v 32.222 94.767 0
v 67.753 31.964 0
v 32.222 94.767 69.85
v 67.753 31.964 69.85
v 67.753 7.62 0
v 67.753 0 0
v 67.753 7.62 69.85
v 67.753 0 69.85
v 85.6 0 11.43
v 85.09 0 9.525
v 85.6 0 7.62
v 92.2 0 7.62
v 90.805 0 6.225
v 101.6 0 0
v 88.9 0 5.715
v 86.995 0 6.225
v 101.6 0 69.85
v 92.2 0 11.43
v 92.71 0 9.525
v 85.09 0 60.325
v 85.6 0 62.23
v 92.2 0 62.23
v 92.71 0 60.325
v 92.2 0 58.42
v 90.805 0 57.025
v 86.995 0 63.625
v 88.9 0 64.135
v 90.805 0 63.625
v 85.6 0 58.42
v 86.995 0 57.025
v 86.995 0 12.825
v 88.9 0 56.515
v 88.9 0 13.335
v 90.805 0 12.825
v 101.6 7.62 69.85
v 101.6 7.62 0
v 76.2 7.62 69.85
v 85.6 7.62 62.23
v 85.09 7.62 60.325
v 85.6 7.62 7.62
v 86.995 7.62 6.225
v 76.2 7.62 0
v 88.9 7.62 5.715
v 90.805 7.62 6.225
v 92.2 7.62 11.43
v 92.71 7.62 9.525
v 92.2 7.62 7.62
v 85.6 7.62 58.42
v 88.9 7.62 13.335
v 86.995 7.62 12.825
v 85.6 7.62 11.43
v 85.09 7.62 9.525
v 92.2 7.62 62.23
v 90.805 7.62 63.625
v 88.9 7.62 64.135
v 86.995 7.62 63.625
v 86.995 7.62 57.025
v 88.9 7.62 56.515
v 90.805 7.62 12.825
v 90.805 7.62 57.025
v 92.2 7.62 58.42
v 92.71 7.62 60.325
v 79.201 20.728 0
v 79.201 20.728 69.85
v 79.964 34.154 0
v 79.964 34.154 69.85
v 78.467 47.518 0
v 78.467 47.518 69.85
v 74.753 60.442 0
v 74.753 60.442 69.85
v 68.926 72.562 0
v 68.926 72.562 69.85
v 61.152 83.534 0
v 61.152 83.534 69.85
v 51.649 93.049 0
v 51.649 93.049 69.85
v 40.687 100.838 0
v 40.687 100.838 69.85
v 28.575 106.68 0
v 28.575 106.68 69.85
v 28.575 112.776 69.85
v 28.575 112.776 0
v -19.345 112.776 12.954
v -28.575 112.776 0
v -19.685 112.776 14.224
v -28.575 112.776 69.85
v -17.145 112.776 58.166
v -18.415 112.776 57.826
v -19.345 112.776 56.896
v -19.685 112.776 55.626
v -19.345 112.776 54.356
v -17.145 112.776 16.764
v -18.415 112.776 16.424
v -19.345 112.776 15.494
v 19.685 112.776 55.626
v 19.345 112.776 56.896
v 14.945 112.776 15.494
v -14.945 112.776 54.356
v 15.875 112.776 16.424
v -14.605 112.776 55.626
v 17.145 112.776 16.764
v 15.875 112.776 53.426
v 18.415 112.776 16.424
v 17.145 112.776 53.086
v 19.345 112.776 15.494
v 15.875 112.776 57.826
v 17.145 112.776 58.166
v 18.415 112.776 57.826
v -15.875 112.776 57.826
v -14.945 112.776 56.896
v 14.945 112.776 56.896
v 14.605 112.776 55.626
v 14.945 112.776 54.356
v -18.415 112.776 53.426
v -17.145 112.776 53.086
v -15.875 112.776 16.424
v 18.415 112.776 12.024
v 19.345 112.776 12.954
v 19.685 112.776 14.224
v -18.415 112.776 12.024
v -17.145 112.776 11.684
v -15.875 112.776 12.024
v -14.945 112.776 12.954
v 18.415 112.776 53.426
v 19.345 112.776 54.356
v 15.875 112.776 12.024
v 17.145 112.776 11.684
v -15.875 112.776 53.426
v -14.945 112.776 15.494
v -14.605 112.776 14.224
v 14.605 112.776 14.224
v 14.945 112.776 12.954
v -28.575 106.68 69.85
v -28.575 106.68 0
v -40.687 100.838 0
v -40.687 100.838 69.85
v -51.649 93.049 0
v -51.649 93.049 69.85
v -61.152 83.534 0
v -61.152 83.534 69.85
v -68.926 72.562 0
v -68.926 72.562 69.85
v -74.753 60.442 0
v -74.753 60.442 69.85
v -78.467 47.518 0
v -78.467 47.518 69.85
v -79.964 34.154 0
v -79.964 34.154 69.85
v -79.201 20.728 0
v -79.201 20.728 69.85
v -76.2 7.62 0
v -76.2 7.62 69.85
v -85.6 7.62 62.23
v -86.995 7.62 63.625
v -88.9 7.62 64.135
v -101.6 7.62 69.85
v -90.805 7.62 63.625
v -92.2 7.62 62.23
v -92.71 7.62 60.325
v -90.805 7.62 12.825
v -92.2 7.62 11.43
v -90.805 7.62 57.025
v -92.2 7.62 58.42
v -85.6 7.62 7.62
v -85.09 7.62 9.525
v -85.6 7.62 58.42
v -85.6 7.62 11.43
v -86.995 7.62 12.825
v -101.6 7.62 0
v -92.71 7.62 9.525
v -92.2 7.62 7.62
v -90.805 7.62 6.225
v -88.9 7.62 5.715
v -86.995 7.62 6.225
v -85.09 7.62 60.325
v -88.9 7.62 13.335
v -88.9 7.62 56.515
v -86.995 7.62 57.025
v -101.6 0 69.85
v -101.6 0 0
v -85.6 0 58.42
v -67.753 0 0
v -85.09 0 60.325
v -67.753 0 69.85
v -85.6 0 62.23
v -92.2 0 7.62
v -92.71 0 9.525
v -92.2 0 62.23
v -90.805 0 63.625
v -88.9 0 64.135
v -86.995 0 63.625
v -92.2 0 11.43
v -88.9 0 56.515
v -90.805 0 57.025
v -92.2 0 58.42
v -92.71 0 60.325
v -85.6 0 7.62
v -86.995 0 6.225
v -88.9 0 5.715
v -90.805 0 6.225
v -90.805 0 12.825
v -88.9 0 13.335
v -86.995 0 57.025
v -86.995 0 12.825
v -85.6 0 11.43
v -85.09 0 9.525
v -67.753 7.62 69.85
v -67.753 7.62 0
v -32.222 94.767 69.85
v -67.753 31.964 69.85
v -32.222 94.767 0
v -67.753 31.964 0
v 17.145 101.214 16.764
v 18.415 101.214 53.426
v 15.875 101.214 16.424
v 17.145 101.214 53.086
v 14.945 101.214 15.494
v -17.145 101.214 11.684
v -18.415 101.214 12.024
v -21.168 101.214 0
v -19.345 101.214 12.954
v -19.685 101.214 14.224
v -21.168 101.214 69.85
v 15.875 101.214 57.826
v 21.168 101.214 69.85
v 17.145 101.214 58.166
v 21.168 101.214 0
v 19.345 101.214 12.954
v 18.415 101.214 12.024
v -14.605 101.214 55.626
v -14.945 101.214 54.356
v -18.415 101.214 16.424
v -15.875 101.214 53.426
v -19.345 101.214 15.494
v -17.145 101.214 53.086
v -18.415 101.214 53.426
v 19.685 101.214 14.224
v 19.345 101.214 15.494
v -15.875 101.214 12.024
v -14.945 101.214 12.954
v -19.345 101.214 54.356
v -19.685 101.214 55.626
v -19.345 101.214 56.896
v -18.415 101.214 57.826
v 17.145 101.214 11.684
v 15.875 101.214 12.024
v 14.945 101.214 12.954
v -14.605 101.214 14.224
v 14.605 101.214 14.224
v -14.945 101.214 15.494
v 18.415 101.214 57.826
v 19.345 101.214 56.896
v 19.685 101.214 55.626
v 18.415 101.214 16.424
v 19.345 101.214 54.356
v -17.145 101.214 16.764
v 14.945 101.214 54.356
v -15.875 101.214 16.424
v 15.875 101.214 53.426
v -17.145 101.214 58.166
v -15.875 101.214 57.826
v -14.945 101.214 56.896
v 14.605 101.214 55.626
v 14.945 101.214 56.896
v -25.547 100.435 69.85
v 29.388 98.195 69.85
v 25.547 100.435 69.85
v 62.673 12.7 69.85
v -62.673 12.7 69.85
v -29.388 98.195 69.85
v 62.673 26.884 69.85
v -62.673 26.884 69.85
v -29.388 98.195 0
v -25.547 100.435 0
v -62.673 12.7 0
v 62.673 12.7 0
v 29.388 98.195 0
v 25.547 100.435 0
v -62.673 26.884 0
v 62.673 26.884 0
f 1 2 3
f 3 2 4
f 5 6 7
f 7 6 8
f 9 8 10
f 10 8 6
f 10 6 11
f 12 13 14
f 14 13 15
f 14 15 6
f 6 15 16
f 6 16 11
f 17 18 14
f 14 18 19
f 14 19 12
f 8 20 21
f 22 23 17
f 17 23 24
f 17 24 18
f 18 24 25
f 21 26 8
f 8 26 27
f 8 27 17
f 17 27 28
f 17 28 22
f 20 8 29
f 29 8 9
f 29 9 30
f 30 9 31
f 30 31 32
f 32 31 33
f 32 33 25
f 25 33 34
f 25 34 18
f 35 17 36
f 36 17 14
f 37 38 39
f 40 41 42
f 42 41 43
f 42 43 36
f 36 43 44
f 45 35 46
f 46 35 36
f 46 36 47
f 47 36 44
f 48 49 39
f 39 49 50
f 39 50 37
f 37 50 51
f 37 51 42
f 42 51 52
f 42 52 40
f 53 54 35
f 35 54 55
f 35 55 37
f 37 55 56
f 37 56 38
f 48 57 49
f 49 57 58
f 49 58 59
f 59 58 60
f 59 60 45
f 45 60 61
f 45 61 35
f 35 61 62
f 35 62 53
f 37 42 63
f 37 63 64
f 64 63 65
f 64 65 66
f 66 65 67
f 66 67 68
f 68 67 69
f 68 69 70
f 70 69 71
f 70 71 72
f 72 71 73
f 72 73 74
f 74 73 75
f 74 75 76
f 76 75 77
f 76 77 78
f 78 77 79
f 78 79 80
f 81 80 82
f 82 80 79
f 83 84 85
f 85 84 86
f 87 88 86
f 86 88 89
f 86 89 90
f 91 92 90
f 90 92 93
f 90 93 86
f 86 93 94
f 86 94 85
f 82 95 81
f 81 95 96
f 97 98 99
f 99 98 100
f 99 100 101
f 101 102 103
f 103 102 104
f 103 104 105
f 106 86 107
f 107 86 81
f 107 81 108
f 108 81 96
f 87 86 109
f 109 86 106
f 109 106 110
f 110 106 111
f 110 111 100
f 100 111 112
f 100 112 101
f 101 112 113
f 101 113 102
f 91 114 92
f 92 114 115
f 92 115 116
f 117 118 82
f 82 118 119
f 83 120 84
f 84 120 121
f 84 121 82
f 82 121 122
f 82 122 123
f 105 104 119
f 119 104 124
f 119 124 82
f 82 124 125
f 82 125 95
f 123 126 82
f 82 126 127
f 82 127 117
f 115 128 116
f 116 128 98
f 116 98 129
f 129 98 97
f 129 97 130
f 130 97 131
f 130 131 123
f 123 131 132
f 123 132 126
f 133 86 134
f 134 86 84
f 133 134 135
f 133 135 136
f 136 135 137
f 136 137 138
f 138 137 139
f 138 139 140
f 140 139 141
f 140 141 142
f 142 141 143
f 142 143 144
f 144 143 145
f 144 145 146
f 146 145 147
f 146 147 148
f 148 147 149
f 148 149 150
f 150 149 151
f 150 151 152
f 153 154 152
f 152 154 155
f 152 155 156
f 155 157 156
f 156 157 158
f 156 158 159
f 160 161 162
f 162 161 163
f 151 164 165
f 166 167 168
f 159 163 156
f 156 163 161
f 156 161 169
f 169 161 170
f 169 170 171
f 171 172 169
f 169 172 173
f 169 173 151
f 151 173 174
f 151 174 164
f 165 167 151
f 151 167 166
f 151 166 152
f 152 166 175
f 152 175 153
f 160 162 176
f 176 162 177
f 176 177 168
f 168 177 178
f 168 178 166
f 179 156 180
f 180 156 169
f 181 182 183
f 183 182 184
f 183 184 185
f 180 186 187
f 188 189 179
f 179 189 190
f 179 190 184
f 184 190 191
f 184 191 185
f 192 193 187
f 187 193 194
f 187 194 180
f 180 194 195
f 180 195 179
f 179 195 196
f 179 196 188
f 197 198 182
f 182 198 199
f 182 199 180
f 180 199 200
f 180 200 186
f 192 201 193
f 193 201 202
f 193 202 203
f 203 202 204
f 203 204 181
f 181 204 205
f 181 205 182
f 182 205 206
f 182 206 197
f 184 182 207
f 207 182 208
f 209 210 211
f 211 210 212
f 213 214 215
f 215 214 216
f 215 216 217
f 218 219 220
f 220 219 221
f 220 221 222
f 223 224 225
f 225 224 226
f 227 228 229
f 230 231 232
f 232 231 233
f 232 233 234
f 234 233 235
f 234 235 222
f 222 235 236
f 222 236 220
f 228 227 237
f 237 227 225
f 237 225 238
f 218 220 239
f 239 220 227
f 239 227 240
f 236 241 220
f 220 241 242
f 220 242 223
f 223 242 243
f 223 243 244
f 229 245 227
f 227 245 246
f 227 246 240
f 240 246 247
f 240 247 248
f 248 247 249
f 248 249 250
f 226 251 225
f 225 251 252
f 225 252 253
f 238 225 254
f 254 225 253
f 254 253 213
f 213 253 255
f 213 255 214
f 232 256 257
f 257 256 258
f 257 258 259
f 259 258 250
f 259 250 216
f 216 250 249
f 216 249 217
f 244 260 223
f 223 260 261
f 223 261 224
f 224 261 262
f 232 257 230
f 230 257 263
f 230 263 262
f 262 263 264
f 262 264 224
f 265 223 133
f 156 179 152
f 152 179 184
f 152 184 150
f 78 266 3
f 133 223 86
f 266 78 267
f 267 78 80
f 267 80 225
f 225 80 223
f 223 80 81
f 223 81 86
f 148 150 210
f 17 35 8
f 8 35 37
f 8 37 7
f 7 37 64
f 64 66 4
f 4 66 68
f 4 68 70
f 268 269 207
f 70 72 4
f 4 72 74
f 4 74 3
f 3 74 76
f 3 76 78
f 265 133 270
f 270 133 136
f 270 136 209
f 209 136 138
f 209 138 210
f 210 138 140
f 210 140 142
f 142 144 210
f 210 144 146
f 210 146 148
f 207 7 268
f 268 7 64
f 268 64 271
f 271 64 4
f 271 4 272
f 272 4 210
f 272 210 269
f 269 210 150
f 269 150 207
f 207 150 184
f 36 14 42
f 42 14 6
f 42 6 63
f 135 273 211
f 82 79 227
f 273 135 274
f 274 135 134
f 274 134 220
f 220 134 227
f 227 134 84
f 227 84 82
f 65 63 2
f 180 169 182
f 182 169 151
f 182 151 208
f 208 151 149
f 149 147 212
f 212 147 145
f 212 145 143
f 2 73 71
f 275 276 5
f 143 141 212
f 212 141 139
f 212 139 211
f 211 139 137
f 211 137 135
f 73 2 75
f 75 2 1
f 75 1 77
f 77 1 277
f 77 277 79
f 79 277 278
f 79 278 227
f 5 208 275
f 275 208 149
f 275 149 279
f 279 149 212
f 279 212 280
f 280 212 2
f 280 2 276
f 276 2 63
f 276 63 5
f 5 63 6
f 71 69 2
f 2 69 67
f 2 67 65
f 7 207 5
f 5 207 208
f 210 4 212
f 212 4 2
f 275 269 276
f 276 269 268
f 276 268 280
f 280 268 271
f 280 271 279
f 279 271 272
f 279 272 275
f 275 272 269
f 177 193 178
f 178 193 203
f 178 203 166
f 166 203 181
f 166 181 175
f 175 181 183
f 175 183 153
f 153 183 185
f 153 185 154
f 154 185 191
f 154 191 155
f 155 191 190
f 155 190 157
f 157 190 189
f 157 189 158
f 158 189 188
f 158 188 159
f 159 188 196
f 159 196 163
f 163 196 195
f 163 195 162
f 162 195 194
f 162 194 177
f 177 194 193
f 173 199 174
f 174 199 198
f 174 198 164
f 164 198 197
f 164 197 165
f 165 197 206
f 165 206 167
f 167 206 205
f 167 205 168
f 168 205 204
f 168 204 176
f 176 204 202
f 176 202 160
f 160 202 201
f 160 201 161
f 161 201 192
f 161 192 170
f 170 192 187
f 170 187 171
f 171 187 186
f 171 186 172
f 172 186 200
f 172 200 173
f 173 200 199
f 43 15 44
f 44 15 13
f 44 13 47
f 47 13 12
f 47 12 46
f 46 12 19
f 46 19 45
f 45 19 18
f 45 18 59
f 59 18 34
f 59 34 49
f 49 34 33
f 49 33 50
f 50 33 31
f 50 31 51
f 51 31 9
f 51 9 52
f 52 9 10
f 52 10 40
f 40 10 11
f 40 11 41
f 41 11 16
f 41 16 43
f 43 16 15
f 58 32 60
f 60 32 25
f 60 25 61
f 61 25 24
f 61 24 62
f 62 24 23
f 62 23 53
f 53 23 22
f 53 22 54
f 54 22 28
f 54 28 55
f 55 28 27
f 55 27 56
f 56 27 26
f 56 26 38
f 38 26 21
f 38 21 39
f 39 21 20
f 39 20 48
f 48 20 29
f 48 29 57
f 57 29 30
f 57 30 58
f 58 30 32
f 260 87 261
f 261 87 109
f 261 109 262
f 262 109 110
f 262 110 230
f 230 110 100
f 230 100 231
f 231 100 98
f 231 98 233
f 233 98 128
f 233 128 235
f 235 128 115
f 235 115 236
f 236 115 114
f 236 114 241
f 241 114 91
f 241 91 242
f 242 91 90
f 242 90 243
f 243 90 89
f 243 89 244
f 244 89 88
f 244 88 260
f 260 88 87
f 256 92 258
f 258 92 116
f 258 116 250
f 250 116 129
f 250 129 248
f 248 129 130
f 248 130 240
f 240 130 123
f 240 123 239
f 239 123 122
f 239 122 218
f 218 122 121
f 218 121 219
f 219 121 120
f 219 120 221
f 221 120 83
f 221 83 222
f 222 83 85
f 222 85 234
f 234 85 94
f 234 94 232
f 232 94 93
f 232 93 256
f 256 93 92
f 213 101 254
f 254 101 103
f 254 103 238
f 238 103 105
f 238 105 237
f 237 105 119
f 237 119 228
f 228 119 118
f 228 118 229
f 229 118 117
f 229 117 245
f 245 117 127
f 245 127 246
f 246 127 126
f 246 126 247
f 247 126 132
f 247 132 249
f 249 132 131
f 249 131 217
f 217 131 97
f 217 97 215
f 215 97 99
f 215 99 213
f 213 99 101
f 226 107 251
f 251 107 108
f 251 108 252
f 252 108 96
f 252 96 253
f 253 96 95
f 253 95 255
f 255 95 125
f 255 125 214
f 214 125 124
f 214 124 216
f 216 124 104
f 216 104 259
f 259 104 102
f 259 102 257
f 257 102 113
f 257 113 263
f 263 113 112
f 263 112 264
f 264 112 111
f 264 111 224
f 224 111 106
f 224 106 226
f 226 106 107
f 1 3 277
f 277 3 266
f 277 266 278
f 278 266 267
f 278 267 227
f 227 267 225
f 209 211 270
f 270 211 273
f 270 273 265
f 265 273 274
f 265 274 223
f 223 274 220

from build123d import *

# Parameters (mm, degrees)
BOSS_EXTRUDE1_DEPTH = 69.85
SKETCH2_W           = 135.505629996
SKETCH2_H           = 24.343701923
SKETCH2_W_2         = 125.345629996
SKETCH2_H_2         = 14.183701923
BOSS_EXTRUDE2_DEPTH = 69.85
CUT_EXTRUDE1_REACH  = 169.093
SKETCH3_R           = 3.81
CUT_EXTRUDE2_REACH  = 169.093
FILLET1_R           = 12.7


with BuildPart() as part:
    # Sketch1 → Boss-Extrude1 (new body)
    with BuildSketch(Plane.XY):
        with BuildLine():
            ThreePointArc((-28.575, 101.213911712), (-14.56545796, 105.448187464), (0, 106.877800601))
            Line((0, 106.877800601), (0, 112.776))
            Line((0, 112.776), (-28.575, 112.776))
            Line((-28.575, 112.776), (-28.575, 106.68))
            ThreePointArc((-28.575, 106.68), (-72.094875381, 66.624699703), (-76.2, 7.62))
            Line((-76.2, 7.62), (-101.6, 7.62))
            Line((-101.6, 7.62), (-101.6, 0))
            Line((-101.6, 0), (-67.752814998, 0))
            ThreePointArc((-67.752814998, 0), (-74.914098678, 31.963701923), (-67.752814998, 63.927403846))
            ThreePointArc((-67.752814998, 63.927403846), (-51.64622835, 86.229614594), (-28.575, 101.213911712))
        make_face()
        with BuildLine():
            Line((67.752814998, 0), (101.6, 0))
            Line((101.6, 0), (101.6, 7.62))
            Line((101.6, 7.62), (76.2, 7.62))
            ThreePointArc((76.2, 7.62), (72.094875381, 66.624699703), (28.575, 106.68))
            Line((28.575, 106.68), (28.575, 112.776))
            Line((28.575, 112.776), (0, 112.776))
            Line((0, 112.776), (0, 106.877800601))
            ThreePointArc((0, 106.877800601), (14.56545796, 105.448187464), (28.575, 101.213911712))
            ThreePointArc((28.575, 101.213911712), (51.64622835, 86.229614594), (67.752814998, 63.927403846))
            ThreePointArc((67.752814998, 63.927403846), (74.914098678, 31.963701923), (67.752814998, 0))
        make_face()
        with BuildLine():
            Line((28.575, 101.213911712), (67.752814998, 31.963701923))
            Line((67.752814998, 31.963701923), (67.752814998, 63.927403846))
            ThreePointArc((67.752814998, 63.927403846), (51.64622835, 86.229614594), (28.575, 101.213911712))
        make_face()
        with BuildLine():
            Line((0, 101.213911712), (28.575, 101.213911712))
            ThreePointArc((28.575, 101.213911712), (14.56545796, 105.448187464), (0, 106.877800601))
            Line((0, 106.877800601), (0, 101.213911712))
        make_face()
        with BuildLine():
            Line((-28.575, 101.213911712), (0, 101.213911712))
            Line((0, 101.213911712), (0, 106.877800601))
            ThreePointArc((0, 106.877800601), (-14.56545796, 105.448187464), (-28.575, 101.213911712))
        make_face()
        with BuildLine():
            Line((-67.752814998, 31.963701923), (-28.575, 101.213911712))
            ThreePointArc((-28.575, 101.213911712), (-51.64622835, 86.229614594), (-67.752814998, 63.927403846))
            Line((-67.752814998, 63.927403846), (-67.752814998, 31.963701923))
        make_face()
        with BuildLine():
            Line((-67.752814998, 0), (-67.752814998, 31.963701923))
            Line((-67.752814998, 31.963701923), (-67.752814998, 63.927403846))
            ThreePointArc((-67.752814998, 63.927403846), (-74.914098678, 31.963701923), (-67.752814998, 0))
        make_face()
        with BuildLine():
            Line((67.752814998, 31.963701923), (67.752814998, 0))
            ThreePointArc((67.752814998, 0), (74.914098678, 31.963701923), (67.752814998, 63.927403846))
            Line((67.752814998, 63.927403846), (67.752814998, 31.963701923))
        make_face()
    extrude(amount=BOSS_EXTRUDE1_DEPTH)

    # Sketch2 → Boss-Extrude2 (add)
    with BuildSketch(Plane.XY.offset(69.85)):
        with Locations((0, 19.791850961)):
            Rectangle(SKETCH2_W, SKETCH2_H)
        with Locations((0, 19.791850961)):
            Rectangle(SKETCH2_W_2, SKETCH2_H_2, mode=Mode.SUBTRACT)
    extrude(amount=-BOSS_EXTRUDE2_DEPTH)

    # Sketch3 → Cut-Extrude1 (cut, up to next)
    with BuildSketch(Plane(origin=(0, 0, 0), x_dir=(-1, 0, 0), z_dir=(0, -1, 0)), mode=Mode.PRIVATE) as cut_extrude1_sk1:
        with Locations(Location((88.9, -60.325, 0), (0, 0, 90))):
            Circle(SKETCH3_R)
    cut_extrude1_tool1 = extrude(cut_extrude1_sk1.sketch, amount=-CUT_EXTRUDE1_REACH, mode=Mode.PRIVATE) & part.part
    # Sketch3 → Cut-Extrude1 (cut, up to next)
    with BuildSketch(Plane(origin=(0, 0, 0), x_dir=(-1, 0, 0), z_dir=(0, -1, 0)), mode=Mode.PRIVATE) as cut_extrude1_sk2:
        with Locations(Location((88.9, -9.525, 0), (0, 0, 90))):
            Circle(SKETCH3_R)
    cut_extrude1_tool2 = extrude(cut_extrude1_sk2.sketch, amount=-CUT_EXTRUDE1_REACH, mode=Mode.PRIVATE) & part.part
    # Sketch3 → Cut-Extrude1 (cut, up to next)
    with BuildSketch(Plane(origin=(0, 0, 0), x_dir=(-1, 0, 0), z_dir=(0, -1, 0)), mode=Mode.PRIVATE) as cut_extrude1_sk3:
        with Locations(Location((-88.9, -9.525, 0), (0, 0, 90))):
            Circle(SKETCH3_R)
    cut_extrude1_tool3 = extrude(cut_extrude1_sk3.sketch, amount=-CUT_EXTRUDE1_REACH, mode=Mode.PRIVATE) & part.part
    # Sketch3 → Cut-Extrude1 (cut, up to next)
    with BuildSketch(Plane(origin=(0, 0, 0), x_dir=(-1, 0, 0), z_dir=(0, -1, 0)), mode=Mode.PRIVATE) as cut_extrude1_sk4:
        with Locations(Location((-88.9, -60.325, 0), (0, 0, 90))):
            Circle(SKETCH3_R)
    cut_extrude1_tool4 = extrude(cut_extrude1_sk4.sketch, amount=-CUT_EXTRUDE1_REACH, mode=Mode.PRIVATE) & part.part
    add(cut_extrude1_tool1.solids().sort_by_distance((-88.9, 0, 60.325))[0], mode=Mode.SUBTRACT)
    add(cut_extrude1_tool2.solids().sort_by_distance((-88.9, 0, 9.525))[0], mode=Mode.SUBTRACT)
    add(cut_extrude1_tool3.solids().sort_by_distance((88.9, 0, 9.525))[0], mode=Mode.SUBTRACT)
    add(cut_extrude1_tool4.solids().sort_by_distance((88.9, 0, 60.325))[0], mode=Mode.SUBTRACT)

    # Sketch4 → Cut-Extrude2 (cut, up to next)
    with BuildSketch(Plane(origin=(0, 112.776, 0), x_dir=(1, 0, 0), z_dir=(0, 1, 0)), mode=Mode.PRIVATE) as cut_extrude2_sk1:
        with BuildLine():
            ThreePointArc((-14.605, -14.224), (-18.941051224, -12.427948776), (-17.145, -16.764))
            Line((-17.145, -16.764), (-17.145, -14.224))
            Line((-17.145, -14.224), (-14.605, -14.224))
        make_face()
    cut_extrude2_tool1 = extrude(cut_extrude2_sk1.sketch, amount=-CUT_EXTRUDE2_REACH, mode=Mode.PRIVATE) & part.part
    # Sketch4 → Cut-Extrude2 (cut, up to next)
    with BuildSketch(Plane(origin=(0, 112.776, 0), x_dir=(1, 0, 0), z_dir=(0, 1, 0)), mode=Mode.PRIVATE) as cut_extrude2_sk2:
        with BuildLine():
            Line((-17.145, -14.224), (-17.145, -16.764))
            ThreePointArc((-17.145, -16.764), (-15.348948776, -16.020051224), (-14.605, -14.224))
            Line((-14.605, -14.224), (-17.145, -14.224))
        make_face()
    cut_extrude2_tool2 = extrude(cut_extrude2_sk2.sketch, amount=-CUT_EXTRUDE2_REACH, mode=Mode.PRIVATE) & part.part
    # Sketch4 → Cut-Extrude2 (cut, up to next)
    with BuildSketch(Plane(origin=(0, 112.776, 0), x_dir=(1, 0, 0), z_dir=(0, 1, 0)), mode=Mode.PRIVATE) as cut_extrude2_sk3:
        with BuildLine():
            ThreePointArc((14.605, -14.224), (15.348948776, -16.020051224), (17.145, -16.764))
            Line((17.145, -16.764), (17.145, -14.224))
            Line((17.145, -14.224), (14.605, -14.224))
        make_face()
    cut_extrude2_tool3 = extrude(cut_extrude2_sk3.sketch, amount=-CUT_EXTRUDE2_REACH, mode=Mode.PRIVATE) & part.part
    # Sketch4 → Cut-Extrude2 (cut, up to next)
    with BuildSketch(Plane(origin=(0, 112.776, 0), x_dir=(1, 0, 0), z_dir=(0, 1, 0)), mode=Mode.PRIVATE) as cut_extrude2_sk4:
        with BuildLine():
            Line((17.145, -14.224), (17.145, -16.764))
            ThreePointArc((17.145, -16.764), (18.941051224, -16.020051224), (19.685, -14.224))
            ThreePointArc((19.685, -14.224), (17.145, -11.684), (14.605, -14.224))
            Line((14.605, -14.224), (17.145, -14.224))
        make_face()
    cut_extrude2_tool4 = extrude(cut_extrude2_sk4.sketch, amount=-CUT_EXTRUDE2_REACH, mode=Mode.PRIVATE) & part.part
    # Sketch4 → Cut-Extrude2 (cut, up to next)
    with BuildSketch(Plane(origin=(0, 112.776, 0), x_dir=(1, 0, 0), z_dir=(0, 1, 0)), mode=Mode.PRIVATE) as cut_extrude2_sk5:
        with BuildLine():
            ThreePointArc((17.145, -53.086), (15.348948776, -53.829948776), (14.605, -55.626))
            Line((14.605, -55.626), (17.145, -55.626))
            Line((17.145, -55.626), (17.145, -53.086))
        make_face()
    cut_extrude2_tool5 = extrude(cut_extrude2_sk5.sketch, amount=-CUT_EXTRUDE2_REACH, mode=Mode.PRIVATE) & part.part
    # Sketch4 → Cut-Extrude2 (cut, up to next)
    with BuildSketch(Plane(origin=(0, 112.776, 0), x_dir=(1, 0, 0), z_dir=(0, 1, 0)), mode=Mode.PRIVATE) as cut_extrude2_sk6:
        with BuildLine():
            Line((17.145, -55.626), (14.605, -55.626))
            ThreePointArc((14.605, -55.626), (17.145, -58.166), (19.685, -55.626))
            ThreePointArc((19.685, -55.626), (18.941051224, -53.829948776), (17.145, -53.086))
            Line((17.145, -53.086), (17.145, -55.626))
        make_face()
    cut_extrude2_tool6 = extrude(cut_extrude2_sk6.sketch, amount=-CUT_EXTRUDE2_REACH, mode=Mode.PRIVATE) & part.part
    # Sketch4 → Cut-Extrude2 (cut, up to next)
    with BuildSketch(Plane(origin=(0, 112.776, 0), x_dir=(1, 0, 0), z_dir=(0, 1, 0)), mode=Mode.PRIVATE) as cut_extrude2_sk7:
        with BuildLine():
            ThreePointArc((-17.145, -53.086), (-18.941051224, -57.422051224), (-14.605, -55.626))
            Line((-14.605, -55.626), (-17.145, -55.626))
            Line((-17.145, -55.626), (-17.145, -53.086))
        make_face()
    cut_extrude2_tool7 = extrude(cut_extrude2_sk7.sketch, amount=-CUT_EXTRUDE2_REACH, mode=Mode.PRIVATE) & part.part
    # Sketch4 → Cut-Extrude2 (cut, up to next)
    with BuildSketch(Plane(origin=(0, 112.776, 0), x_dir=(1, 0, 0), z_dir=(0, 1, 0)), mode=Mode.PRIVATE) as cut_extrude2_sk8:
        with BuildLine():
            Line((-17.145, -55.626), (-14.605, -55.626))
            ThreePointArc((-14.605, -55.626), (-15.348948776, -53.829948776), (-17.145, -53.086))
            Line((-17.145, -53.086), (-17.145, -55.626))
        make_face()
    cut_extrude2_tool8 = extrude(cut_extrude2_sk8.sketch, amount=-CUT_EXTRUDE2_REACH, mode=Mode.PRIVATE) & part.part
    # Sketch4 → Cut-Extrude2 (cut, up to next)
    with BuildSketch(Plane(origin=(0, 112.776, 0), x_dir=(1, 0, 0), z_dir=(0, 1, 0)), mode=Mode.PRIVATE) as cut_extrude2_sk9:
        with BuildLine():
            ThreePointArc((-17.145, -53.086), (-18.941051224, -57.422051224), (-14.605, -55.626))
            Line((-14.605, -55.626), (-17.145, -55.626))
            Line((-17.145, -55.626), (-17.145, -53.086))
        make_face()
    cut_extrude2_tool9 = extrude(cut_extrude2_sk9.sketch, amount=-CUT_EXTRUDE2_REACH, mode=Mode.PRIVATE) & part.part
    # Sketch4 → Cut-Extrude2 (cut, up to next)
    with BuildSketch(Plane(origin=(0, 112.776, 0), x_dir=(1, 0, 0), z_dir=(0, 1, 0)), mode=Mode.PRIVATE) as cut_extrude2_sk10:
        with BuildLine():
            Line((-17.145, -55.626), (-14.605, -55.626))
            ThreePointArc((-14.605, -55.626), (-15.348948776, -53.829948776), (-17.145, -53.086))
            Line((-17.145, -53.086), (-17.145, -55.626))
        make_face()
    cut_extrude2_tool10 = extrude(cut_extrude2_sk10.sketch, amount=-CUT_EXTRUDE2_REACH, mode=Mode.PRIVATE) & part.part
    # Sketch4 → Cut-Extrude2 (cut, up to next)
    with BuildSketch(Plane(origin=(0, 112.776, 0), x_dir=(1, 0, 0), z_dir=(0, 1, 0)), mode=Mode.PRIVATE) as cut_extrude2_sk11:
        with BuildLine():
            ThreePointArc((-14.605, -14.224), (-18.941051224, -12.427948776), (-17.145, -16.764))
            Line((-17.145, -16.764), (-17.145, -14.224))
            Line((-17.145, -14.224), (-14.605, -14.224))
        make_face()
    cut_extrude2_tool11 = extrude(cut_extrude2_sk11.sketch, amount=-CUT_EXTRUDE2_REACH, mode=Mode.PRIVATE) & part.part
    # Sketch4 → Cut-Extrude2 (cut, up to next)
    with BuildSketch(Plane(origin=(0, 112.776, 0), x_dir=(1, 0, 0), z_dir=(0, 1, 0)), mode=Mode.PRIVATE) as cut_extrude2_sk12:
        with BuildLine():
            Line((-17.145, -14.224), (-17.145, -16.764))
            ThreePointArc((-17.145, -16.764), (-15.348948776, -16.020051224), (-14.605, -14.224))
            Line((-14.605, -14.224), (-17.145, -14.224))
        make_face()
    cut_extrude2_tool12 = extrude(cut_extrude2_sk12.sketch, amount=-CUT_EXTRUDE2_REACH, mode=Mode.PRIVATE) & part.part
    # Sketch4 → Cut-Extrude2 (cut, up to next)
    with BuildSketch(Plane(origin=(0, 112.776, 0), x_dir=(1, 0, 0), z_dir=(0, 1, 0)), mode=Mode.PRIVATE) as cut_extrude2_sk13:
        with BuildLine():
            ThreePointArc((14.605, -14.224), (15.348948776, -16.020051224), (17.145, -16.764))
            Line((17.145, -16.764), (17.145, -14.224))
            Line((17.145, -14.224), (14.605, -14.224))
        make_face()
    cut_extrude2_tool13 = extrude(cut_extrude2_sk13.sketch, amount=-CUT_EXTRUDE2_REACH, mode=Mode.PRIVATE) & part.part
    # Sketch4 → Cut-Extrude2 (cut, up to next)
    with BuildSketch(Plane(origin=(0, 112.776, 0), x_dir=(1, 0, 0), z_dir=(0, 1, 0)), mode=Mode.PRIVATE) as cut_extrude2_sk14:
        with BuildLine():
            Line((17.145, -14.224), (17.145, -16.764))
            ThreePointArc((17.145, -16.764), (18.941051224, -16.020051224), (19.685, -14.224))
            ThreePointArc((19.685, -14.224), (17.145, -11.684), (14.605, -14.224))
            Line((14.605, -14.224), (17.145, -14.224))
        make_face()
    cut_extrude2_tool14 = extrude(cut_extrude2_sk14.sketch, amount=-CUT_EXTRUDE2_REACH, mode=Mode.PRIVATE) & part.part
    # Sketch4 → Cut-Extrude2 (cut, up to next)
    with BuildSketch(Plane(origin=(0, 112.776, 0), x_dir=(1, 0, 0), z_dir=(0, 1, 0)), mode=Mode.PRIVATE) as cut_extrude2_sk15:
        with BuildLine():
            ThreePointArc((17.145, -53.086), (15.348948776, -53.829948776), (14.605, -55.626))
            Line((14.605, -55.626), (17.145, -55.626))
            Line((17.145, -55.626), (17.145, -53.086))
        make_face()
    cut_extrude2_tool15 = extrude(cut_extrude2_sk15.sketch, amount=-CUT_EXTRUDE2_REACH, mode=Mode.PRIVATE) & part.part
    # Sketch4 → Cut-Extrude2 (cut, up to next)
    with BuildSketch(Plane(origin=(0, 112.776, 0), x_dir=(1, 0, 0), z_dir=(0, 1, 0)), mode=Mode.PRIVATE) as cut_extrude2_sk16:
        with BuildLine():
            Line((17.145, -55.626), (14.605, -55.626))
            ThreePointArc((14.605, -55.626), (17.145, -58.166), (19.685, -55.626))
            ThreePointArc((19.685, -55.626), (18.941051224, -53.829948776), (17.145, -53.086))
            Line((17.145, -53.086), (17.145, -55.626))
        make_face()
    cut_extrude2_tool16 = extrude(cut_extrude2_sk16.sketch, amount=-CUT_EXTRUDE2_REACH, mode=Mode.PRIVATE) & part.part
    add(cut_extrude2_tool1.solids().sort_by_distance((-17.504336, 112.776, 13.864664))[0], mode=Mode.SUBTRACT)
    add(cut_extrude2_tool2.solids().sort_by_distance((-16.066991, 112.776, 15.302009))[0], mode=Mode.SUBTRACT)
    add(cut_extrude2_tool3.solids().sort_by_distance((16.066991, 112.776, 15.302009))[0], mode=Mode.SUBTRACT)
    add(cut_extrude2_tool4.solids().sort_by_distance((17.504336, 112.776, 13.864664))[0], mode=Mode.SUBTRACT)
    add(cut_extrude2_tool5.solids().sort_by_distance((16.066991, 112.776, 54.547991))[0], mode=Mode.SUBTRACT)
    add(cut_extrude2_tool6.solids().sort_by_distance((17.504336, 112.776, 55.985336))[0], mode=Mode.SUBTRACT)
    add(cut_extrude2_tool7.solids().sort_by_distance((-17.504336, 112.776, 55.985336))[0], mode=Mode.SUBTRACT)
    add(cut_extrude2_tool8.solids().sort_by_distance((-16.066991, 112.776, 54.547991))[0], mode=Mode.SUBTRACT)
    add(cut_extrude2_tool9.solids().sort_by_distance((-17.504336, 112.776, 55.985336))[0], mode=Mode.SUBTRACT)
    add(cut_extrude2_tool10.solids().sort_by_distance((-16.066991, 112.776, 54.547991))[0], mode=Mode.SUBTRACT)
    add(cut_extrude2_tool11.solids().sort_by_distance((-17.504336, 112.776, 13.864664))[0], mode=Mode.SUBTRACT)
    add(cut_extrude2_tool12.solids().sort_by_distance((-16.066991, 112.776, 15.302009))[0], mode=Mode.SUBTRACT)
    add(cut_extrude2_tool13.solids().sort_by_distance((16.066991, 112.776, 15.302009))[0], mode=Mode.SUBTRACT)
    add(cut_extrude2_tool14.solids().sort_by_distance((17.504336, 112.776, 13.864664))[0], mode=Mode.SUBTRACT)
    add(cut_extrude2_tool15.solids().sort_by_distance((16.066991, 112.776, 54.547991))[0], mode=Mode.SUBTRACT)
    add(cut_extrude2_tool16.solids().sort_by_distance((17.504336, 112.776, 55.985336))[0], mode=Mode.SUBTRACT)

    # Fillet1
    fillet1_edges = [part.edges().sort_by_distance(p)[0] for p in [
        (28.575, 101.213911712, 34.925),
        (-28.575, 101.213911712, 34.925),
    ]]
    fillet(fillet1_edges, radius=FILLET1_R)


solid = part.part
